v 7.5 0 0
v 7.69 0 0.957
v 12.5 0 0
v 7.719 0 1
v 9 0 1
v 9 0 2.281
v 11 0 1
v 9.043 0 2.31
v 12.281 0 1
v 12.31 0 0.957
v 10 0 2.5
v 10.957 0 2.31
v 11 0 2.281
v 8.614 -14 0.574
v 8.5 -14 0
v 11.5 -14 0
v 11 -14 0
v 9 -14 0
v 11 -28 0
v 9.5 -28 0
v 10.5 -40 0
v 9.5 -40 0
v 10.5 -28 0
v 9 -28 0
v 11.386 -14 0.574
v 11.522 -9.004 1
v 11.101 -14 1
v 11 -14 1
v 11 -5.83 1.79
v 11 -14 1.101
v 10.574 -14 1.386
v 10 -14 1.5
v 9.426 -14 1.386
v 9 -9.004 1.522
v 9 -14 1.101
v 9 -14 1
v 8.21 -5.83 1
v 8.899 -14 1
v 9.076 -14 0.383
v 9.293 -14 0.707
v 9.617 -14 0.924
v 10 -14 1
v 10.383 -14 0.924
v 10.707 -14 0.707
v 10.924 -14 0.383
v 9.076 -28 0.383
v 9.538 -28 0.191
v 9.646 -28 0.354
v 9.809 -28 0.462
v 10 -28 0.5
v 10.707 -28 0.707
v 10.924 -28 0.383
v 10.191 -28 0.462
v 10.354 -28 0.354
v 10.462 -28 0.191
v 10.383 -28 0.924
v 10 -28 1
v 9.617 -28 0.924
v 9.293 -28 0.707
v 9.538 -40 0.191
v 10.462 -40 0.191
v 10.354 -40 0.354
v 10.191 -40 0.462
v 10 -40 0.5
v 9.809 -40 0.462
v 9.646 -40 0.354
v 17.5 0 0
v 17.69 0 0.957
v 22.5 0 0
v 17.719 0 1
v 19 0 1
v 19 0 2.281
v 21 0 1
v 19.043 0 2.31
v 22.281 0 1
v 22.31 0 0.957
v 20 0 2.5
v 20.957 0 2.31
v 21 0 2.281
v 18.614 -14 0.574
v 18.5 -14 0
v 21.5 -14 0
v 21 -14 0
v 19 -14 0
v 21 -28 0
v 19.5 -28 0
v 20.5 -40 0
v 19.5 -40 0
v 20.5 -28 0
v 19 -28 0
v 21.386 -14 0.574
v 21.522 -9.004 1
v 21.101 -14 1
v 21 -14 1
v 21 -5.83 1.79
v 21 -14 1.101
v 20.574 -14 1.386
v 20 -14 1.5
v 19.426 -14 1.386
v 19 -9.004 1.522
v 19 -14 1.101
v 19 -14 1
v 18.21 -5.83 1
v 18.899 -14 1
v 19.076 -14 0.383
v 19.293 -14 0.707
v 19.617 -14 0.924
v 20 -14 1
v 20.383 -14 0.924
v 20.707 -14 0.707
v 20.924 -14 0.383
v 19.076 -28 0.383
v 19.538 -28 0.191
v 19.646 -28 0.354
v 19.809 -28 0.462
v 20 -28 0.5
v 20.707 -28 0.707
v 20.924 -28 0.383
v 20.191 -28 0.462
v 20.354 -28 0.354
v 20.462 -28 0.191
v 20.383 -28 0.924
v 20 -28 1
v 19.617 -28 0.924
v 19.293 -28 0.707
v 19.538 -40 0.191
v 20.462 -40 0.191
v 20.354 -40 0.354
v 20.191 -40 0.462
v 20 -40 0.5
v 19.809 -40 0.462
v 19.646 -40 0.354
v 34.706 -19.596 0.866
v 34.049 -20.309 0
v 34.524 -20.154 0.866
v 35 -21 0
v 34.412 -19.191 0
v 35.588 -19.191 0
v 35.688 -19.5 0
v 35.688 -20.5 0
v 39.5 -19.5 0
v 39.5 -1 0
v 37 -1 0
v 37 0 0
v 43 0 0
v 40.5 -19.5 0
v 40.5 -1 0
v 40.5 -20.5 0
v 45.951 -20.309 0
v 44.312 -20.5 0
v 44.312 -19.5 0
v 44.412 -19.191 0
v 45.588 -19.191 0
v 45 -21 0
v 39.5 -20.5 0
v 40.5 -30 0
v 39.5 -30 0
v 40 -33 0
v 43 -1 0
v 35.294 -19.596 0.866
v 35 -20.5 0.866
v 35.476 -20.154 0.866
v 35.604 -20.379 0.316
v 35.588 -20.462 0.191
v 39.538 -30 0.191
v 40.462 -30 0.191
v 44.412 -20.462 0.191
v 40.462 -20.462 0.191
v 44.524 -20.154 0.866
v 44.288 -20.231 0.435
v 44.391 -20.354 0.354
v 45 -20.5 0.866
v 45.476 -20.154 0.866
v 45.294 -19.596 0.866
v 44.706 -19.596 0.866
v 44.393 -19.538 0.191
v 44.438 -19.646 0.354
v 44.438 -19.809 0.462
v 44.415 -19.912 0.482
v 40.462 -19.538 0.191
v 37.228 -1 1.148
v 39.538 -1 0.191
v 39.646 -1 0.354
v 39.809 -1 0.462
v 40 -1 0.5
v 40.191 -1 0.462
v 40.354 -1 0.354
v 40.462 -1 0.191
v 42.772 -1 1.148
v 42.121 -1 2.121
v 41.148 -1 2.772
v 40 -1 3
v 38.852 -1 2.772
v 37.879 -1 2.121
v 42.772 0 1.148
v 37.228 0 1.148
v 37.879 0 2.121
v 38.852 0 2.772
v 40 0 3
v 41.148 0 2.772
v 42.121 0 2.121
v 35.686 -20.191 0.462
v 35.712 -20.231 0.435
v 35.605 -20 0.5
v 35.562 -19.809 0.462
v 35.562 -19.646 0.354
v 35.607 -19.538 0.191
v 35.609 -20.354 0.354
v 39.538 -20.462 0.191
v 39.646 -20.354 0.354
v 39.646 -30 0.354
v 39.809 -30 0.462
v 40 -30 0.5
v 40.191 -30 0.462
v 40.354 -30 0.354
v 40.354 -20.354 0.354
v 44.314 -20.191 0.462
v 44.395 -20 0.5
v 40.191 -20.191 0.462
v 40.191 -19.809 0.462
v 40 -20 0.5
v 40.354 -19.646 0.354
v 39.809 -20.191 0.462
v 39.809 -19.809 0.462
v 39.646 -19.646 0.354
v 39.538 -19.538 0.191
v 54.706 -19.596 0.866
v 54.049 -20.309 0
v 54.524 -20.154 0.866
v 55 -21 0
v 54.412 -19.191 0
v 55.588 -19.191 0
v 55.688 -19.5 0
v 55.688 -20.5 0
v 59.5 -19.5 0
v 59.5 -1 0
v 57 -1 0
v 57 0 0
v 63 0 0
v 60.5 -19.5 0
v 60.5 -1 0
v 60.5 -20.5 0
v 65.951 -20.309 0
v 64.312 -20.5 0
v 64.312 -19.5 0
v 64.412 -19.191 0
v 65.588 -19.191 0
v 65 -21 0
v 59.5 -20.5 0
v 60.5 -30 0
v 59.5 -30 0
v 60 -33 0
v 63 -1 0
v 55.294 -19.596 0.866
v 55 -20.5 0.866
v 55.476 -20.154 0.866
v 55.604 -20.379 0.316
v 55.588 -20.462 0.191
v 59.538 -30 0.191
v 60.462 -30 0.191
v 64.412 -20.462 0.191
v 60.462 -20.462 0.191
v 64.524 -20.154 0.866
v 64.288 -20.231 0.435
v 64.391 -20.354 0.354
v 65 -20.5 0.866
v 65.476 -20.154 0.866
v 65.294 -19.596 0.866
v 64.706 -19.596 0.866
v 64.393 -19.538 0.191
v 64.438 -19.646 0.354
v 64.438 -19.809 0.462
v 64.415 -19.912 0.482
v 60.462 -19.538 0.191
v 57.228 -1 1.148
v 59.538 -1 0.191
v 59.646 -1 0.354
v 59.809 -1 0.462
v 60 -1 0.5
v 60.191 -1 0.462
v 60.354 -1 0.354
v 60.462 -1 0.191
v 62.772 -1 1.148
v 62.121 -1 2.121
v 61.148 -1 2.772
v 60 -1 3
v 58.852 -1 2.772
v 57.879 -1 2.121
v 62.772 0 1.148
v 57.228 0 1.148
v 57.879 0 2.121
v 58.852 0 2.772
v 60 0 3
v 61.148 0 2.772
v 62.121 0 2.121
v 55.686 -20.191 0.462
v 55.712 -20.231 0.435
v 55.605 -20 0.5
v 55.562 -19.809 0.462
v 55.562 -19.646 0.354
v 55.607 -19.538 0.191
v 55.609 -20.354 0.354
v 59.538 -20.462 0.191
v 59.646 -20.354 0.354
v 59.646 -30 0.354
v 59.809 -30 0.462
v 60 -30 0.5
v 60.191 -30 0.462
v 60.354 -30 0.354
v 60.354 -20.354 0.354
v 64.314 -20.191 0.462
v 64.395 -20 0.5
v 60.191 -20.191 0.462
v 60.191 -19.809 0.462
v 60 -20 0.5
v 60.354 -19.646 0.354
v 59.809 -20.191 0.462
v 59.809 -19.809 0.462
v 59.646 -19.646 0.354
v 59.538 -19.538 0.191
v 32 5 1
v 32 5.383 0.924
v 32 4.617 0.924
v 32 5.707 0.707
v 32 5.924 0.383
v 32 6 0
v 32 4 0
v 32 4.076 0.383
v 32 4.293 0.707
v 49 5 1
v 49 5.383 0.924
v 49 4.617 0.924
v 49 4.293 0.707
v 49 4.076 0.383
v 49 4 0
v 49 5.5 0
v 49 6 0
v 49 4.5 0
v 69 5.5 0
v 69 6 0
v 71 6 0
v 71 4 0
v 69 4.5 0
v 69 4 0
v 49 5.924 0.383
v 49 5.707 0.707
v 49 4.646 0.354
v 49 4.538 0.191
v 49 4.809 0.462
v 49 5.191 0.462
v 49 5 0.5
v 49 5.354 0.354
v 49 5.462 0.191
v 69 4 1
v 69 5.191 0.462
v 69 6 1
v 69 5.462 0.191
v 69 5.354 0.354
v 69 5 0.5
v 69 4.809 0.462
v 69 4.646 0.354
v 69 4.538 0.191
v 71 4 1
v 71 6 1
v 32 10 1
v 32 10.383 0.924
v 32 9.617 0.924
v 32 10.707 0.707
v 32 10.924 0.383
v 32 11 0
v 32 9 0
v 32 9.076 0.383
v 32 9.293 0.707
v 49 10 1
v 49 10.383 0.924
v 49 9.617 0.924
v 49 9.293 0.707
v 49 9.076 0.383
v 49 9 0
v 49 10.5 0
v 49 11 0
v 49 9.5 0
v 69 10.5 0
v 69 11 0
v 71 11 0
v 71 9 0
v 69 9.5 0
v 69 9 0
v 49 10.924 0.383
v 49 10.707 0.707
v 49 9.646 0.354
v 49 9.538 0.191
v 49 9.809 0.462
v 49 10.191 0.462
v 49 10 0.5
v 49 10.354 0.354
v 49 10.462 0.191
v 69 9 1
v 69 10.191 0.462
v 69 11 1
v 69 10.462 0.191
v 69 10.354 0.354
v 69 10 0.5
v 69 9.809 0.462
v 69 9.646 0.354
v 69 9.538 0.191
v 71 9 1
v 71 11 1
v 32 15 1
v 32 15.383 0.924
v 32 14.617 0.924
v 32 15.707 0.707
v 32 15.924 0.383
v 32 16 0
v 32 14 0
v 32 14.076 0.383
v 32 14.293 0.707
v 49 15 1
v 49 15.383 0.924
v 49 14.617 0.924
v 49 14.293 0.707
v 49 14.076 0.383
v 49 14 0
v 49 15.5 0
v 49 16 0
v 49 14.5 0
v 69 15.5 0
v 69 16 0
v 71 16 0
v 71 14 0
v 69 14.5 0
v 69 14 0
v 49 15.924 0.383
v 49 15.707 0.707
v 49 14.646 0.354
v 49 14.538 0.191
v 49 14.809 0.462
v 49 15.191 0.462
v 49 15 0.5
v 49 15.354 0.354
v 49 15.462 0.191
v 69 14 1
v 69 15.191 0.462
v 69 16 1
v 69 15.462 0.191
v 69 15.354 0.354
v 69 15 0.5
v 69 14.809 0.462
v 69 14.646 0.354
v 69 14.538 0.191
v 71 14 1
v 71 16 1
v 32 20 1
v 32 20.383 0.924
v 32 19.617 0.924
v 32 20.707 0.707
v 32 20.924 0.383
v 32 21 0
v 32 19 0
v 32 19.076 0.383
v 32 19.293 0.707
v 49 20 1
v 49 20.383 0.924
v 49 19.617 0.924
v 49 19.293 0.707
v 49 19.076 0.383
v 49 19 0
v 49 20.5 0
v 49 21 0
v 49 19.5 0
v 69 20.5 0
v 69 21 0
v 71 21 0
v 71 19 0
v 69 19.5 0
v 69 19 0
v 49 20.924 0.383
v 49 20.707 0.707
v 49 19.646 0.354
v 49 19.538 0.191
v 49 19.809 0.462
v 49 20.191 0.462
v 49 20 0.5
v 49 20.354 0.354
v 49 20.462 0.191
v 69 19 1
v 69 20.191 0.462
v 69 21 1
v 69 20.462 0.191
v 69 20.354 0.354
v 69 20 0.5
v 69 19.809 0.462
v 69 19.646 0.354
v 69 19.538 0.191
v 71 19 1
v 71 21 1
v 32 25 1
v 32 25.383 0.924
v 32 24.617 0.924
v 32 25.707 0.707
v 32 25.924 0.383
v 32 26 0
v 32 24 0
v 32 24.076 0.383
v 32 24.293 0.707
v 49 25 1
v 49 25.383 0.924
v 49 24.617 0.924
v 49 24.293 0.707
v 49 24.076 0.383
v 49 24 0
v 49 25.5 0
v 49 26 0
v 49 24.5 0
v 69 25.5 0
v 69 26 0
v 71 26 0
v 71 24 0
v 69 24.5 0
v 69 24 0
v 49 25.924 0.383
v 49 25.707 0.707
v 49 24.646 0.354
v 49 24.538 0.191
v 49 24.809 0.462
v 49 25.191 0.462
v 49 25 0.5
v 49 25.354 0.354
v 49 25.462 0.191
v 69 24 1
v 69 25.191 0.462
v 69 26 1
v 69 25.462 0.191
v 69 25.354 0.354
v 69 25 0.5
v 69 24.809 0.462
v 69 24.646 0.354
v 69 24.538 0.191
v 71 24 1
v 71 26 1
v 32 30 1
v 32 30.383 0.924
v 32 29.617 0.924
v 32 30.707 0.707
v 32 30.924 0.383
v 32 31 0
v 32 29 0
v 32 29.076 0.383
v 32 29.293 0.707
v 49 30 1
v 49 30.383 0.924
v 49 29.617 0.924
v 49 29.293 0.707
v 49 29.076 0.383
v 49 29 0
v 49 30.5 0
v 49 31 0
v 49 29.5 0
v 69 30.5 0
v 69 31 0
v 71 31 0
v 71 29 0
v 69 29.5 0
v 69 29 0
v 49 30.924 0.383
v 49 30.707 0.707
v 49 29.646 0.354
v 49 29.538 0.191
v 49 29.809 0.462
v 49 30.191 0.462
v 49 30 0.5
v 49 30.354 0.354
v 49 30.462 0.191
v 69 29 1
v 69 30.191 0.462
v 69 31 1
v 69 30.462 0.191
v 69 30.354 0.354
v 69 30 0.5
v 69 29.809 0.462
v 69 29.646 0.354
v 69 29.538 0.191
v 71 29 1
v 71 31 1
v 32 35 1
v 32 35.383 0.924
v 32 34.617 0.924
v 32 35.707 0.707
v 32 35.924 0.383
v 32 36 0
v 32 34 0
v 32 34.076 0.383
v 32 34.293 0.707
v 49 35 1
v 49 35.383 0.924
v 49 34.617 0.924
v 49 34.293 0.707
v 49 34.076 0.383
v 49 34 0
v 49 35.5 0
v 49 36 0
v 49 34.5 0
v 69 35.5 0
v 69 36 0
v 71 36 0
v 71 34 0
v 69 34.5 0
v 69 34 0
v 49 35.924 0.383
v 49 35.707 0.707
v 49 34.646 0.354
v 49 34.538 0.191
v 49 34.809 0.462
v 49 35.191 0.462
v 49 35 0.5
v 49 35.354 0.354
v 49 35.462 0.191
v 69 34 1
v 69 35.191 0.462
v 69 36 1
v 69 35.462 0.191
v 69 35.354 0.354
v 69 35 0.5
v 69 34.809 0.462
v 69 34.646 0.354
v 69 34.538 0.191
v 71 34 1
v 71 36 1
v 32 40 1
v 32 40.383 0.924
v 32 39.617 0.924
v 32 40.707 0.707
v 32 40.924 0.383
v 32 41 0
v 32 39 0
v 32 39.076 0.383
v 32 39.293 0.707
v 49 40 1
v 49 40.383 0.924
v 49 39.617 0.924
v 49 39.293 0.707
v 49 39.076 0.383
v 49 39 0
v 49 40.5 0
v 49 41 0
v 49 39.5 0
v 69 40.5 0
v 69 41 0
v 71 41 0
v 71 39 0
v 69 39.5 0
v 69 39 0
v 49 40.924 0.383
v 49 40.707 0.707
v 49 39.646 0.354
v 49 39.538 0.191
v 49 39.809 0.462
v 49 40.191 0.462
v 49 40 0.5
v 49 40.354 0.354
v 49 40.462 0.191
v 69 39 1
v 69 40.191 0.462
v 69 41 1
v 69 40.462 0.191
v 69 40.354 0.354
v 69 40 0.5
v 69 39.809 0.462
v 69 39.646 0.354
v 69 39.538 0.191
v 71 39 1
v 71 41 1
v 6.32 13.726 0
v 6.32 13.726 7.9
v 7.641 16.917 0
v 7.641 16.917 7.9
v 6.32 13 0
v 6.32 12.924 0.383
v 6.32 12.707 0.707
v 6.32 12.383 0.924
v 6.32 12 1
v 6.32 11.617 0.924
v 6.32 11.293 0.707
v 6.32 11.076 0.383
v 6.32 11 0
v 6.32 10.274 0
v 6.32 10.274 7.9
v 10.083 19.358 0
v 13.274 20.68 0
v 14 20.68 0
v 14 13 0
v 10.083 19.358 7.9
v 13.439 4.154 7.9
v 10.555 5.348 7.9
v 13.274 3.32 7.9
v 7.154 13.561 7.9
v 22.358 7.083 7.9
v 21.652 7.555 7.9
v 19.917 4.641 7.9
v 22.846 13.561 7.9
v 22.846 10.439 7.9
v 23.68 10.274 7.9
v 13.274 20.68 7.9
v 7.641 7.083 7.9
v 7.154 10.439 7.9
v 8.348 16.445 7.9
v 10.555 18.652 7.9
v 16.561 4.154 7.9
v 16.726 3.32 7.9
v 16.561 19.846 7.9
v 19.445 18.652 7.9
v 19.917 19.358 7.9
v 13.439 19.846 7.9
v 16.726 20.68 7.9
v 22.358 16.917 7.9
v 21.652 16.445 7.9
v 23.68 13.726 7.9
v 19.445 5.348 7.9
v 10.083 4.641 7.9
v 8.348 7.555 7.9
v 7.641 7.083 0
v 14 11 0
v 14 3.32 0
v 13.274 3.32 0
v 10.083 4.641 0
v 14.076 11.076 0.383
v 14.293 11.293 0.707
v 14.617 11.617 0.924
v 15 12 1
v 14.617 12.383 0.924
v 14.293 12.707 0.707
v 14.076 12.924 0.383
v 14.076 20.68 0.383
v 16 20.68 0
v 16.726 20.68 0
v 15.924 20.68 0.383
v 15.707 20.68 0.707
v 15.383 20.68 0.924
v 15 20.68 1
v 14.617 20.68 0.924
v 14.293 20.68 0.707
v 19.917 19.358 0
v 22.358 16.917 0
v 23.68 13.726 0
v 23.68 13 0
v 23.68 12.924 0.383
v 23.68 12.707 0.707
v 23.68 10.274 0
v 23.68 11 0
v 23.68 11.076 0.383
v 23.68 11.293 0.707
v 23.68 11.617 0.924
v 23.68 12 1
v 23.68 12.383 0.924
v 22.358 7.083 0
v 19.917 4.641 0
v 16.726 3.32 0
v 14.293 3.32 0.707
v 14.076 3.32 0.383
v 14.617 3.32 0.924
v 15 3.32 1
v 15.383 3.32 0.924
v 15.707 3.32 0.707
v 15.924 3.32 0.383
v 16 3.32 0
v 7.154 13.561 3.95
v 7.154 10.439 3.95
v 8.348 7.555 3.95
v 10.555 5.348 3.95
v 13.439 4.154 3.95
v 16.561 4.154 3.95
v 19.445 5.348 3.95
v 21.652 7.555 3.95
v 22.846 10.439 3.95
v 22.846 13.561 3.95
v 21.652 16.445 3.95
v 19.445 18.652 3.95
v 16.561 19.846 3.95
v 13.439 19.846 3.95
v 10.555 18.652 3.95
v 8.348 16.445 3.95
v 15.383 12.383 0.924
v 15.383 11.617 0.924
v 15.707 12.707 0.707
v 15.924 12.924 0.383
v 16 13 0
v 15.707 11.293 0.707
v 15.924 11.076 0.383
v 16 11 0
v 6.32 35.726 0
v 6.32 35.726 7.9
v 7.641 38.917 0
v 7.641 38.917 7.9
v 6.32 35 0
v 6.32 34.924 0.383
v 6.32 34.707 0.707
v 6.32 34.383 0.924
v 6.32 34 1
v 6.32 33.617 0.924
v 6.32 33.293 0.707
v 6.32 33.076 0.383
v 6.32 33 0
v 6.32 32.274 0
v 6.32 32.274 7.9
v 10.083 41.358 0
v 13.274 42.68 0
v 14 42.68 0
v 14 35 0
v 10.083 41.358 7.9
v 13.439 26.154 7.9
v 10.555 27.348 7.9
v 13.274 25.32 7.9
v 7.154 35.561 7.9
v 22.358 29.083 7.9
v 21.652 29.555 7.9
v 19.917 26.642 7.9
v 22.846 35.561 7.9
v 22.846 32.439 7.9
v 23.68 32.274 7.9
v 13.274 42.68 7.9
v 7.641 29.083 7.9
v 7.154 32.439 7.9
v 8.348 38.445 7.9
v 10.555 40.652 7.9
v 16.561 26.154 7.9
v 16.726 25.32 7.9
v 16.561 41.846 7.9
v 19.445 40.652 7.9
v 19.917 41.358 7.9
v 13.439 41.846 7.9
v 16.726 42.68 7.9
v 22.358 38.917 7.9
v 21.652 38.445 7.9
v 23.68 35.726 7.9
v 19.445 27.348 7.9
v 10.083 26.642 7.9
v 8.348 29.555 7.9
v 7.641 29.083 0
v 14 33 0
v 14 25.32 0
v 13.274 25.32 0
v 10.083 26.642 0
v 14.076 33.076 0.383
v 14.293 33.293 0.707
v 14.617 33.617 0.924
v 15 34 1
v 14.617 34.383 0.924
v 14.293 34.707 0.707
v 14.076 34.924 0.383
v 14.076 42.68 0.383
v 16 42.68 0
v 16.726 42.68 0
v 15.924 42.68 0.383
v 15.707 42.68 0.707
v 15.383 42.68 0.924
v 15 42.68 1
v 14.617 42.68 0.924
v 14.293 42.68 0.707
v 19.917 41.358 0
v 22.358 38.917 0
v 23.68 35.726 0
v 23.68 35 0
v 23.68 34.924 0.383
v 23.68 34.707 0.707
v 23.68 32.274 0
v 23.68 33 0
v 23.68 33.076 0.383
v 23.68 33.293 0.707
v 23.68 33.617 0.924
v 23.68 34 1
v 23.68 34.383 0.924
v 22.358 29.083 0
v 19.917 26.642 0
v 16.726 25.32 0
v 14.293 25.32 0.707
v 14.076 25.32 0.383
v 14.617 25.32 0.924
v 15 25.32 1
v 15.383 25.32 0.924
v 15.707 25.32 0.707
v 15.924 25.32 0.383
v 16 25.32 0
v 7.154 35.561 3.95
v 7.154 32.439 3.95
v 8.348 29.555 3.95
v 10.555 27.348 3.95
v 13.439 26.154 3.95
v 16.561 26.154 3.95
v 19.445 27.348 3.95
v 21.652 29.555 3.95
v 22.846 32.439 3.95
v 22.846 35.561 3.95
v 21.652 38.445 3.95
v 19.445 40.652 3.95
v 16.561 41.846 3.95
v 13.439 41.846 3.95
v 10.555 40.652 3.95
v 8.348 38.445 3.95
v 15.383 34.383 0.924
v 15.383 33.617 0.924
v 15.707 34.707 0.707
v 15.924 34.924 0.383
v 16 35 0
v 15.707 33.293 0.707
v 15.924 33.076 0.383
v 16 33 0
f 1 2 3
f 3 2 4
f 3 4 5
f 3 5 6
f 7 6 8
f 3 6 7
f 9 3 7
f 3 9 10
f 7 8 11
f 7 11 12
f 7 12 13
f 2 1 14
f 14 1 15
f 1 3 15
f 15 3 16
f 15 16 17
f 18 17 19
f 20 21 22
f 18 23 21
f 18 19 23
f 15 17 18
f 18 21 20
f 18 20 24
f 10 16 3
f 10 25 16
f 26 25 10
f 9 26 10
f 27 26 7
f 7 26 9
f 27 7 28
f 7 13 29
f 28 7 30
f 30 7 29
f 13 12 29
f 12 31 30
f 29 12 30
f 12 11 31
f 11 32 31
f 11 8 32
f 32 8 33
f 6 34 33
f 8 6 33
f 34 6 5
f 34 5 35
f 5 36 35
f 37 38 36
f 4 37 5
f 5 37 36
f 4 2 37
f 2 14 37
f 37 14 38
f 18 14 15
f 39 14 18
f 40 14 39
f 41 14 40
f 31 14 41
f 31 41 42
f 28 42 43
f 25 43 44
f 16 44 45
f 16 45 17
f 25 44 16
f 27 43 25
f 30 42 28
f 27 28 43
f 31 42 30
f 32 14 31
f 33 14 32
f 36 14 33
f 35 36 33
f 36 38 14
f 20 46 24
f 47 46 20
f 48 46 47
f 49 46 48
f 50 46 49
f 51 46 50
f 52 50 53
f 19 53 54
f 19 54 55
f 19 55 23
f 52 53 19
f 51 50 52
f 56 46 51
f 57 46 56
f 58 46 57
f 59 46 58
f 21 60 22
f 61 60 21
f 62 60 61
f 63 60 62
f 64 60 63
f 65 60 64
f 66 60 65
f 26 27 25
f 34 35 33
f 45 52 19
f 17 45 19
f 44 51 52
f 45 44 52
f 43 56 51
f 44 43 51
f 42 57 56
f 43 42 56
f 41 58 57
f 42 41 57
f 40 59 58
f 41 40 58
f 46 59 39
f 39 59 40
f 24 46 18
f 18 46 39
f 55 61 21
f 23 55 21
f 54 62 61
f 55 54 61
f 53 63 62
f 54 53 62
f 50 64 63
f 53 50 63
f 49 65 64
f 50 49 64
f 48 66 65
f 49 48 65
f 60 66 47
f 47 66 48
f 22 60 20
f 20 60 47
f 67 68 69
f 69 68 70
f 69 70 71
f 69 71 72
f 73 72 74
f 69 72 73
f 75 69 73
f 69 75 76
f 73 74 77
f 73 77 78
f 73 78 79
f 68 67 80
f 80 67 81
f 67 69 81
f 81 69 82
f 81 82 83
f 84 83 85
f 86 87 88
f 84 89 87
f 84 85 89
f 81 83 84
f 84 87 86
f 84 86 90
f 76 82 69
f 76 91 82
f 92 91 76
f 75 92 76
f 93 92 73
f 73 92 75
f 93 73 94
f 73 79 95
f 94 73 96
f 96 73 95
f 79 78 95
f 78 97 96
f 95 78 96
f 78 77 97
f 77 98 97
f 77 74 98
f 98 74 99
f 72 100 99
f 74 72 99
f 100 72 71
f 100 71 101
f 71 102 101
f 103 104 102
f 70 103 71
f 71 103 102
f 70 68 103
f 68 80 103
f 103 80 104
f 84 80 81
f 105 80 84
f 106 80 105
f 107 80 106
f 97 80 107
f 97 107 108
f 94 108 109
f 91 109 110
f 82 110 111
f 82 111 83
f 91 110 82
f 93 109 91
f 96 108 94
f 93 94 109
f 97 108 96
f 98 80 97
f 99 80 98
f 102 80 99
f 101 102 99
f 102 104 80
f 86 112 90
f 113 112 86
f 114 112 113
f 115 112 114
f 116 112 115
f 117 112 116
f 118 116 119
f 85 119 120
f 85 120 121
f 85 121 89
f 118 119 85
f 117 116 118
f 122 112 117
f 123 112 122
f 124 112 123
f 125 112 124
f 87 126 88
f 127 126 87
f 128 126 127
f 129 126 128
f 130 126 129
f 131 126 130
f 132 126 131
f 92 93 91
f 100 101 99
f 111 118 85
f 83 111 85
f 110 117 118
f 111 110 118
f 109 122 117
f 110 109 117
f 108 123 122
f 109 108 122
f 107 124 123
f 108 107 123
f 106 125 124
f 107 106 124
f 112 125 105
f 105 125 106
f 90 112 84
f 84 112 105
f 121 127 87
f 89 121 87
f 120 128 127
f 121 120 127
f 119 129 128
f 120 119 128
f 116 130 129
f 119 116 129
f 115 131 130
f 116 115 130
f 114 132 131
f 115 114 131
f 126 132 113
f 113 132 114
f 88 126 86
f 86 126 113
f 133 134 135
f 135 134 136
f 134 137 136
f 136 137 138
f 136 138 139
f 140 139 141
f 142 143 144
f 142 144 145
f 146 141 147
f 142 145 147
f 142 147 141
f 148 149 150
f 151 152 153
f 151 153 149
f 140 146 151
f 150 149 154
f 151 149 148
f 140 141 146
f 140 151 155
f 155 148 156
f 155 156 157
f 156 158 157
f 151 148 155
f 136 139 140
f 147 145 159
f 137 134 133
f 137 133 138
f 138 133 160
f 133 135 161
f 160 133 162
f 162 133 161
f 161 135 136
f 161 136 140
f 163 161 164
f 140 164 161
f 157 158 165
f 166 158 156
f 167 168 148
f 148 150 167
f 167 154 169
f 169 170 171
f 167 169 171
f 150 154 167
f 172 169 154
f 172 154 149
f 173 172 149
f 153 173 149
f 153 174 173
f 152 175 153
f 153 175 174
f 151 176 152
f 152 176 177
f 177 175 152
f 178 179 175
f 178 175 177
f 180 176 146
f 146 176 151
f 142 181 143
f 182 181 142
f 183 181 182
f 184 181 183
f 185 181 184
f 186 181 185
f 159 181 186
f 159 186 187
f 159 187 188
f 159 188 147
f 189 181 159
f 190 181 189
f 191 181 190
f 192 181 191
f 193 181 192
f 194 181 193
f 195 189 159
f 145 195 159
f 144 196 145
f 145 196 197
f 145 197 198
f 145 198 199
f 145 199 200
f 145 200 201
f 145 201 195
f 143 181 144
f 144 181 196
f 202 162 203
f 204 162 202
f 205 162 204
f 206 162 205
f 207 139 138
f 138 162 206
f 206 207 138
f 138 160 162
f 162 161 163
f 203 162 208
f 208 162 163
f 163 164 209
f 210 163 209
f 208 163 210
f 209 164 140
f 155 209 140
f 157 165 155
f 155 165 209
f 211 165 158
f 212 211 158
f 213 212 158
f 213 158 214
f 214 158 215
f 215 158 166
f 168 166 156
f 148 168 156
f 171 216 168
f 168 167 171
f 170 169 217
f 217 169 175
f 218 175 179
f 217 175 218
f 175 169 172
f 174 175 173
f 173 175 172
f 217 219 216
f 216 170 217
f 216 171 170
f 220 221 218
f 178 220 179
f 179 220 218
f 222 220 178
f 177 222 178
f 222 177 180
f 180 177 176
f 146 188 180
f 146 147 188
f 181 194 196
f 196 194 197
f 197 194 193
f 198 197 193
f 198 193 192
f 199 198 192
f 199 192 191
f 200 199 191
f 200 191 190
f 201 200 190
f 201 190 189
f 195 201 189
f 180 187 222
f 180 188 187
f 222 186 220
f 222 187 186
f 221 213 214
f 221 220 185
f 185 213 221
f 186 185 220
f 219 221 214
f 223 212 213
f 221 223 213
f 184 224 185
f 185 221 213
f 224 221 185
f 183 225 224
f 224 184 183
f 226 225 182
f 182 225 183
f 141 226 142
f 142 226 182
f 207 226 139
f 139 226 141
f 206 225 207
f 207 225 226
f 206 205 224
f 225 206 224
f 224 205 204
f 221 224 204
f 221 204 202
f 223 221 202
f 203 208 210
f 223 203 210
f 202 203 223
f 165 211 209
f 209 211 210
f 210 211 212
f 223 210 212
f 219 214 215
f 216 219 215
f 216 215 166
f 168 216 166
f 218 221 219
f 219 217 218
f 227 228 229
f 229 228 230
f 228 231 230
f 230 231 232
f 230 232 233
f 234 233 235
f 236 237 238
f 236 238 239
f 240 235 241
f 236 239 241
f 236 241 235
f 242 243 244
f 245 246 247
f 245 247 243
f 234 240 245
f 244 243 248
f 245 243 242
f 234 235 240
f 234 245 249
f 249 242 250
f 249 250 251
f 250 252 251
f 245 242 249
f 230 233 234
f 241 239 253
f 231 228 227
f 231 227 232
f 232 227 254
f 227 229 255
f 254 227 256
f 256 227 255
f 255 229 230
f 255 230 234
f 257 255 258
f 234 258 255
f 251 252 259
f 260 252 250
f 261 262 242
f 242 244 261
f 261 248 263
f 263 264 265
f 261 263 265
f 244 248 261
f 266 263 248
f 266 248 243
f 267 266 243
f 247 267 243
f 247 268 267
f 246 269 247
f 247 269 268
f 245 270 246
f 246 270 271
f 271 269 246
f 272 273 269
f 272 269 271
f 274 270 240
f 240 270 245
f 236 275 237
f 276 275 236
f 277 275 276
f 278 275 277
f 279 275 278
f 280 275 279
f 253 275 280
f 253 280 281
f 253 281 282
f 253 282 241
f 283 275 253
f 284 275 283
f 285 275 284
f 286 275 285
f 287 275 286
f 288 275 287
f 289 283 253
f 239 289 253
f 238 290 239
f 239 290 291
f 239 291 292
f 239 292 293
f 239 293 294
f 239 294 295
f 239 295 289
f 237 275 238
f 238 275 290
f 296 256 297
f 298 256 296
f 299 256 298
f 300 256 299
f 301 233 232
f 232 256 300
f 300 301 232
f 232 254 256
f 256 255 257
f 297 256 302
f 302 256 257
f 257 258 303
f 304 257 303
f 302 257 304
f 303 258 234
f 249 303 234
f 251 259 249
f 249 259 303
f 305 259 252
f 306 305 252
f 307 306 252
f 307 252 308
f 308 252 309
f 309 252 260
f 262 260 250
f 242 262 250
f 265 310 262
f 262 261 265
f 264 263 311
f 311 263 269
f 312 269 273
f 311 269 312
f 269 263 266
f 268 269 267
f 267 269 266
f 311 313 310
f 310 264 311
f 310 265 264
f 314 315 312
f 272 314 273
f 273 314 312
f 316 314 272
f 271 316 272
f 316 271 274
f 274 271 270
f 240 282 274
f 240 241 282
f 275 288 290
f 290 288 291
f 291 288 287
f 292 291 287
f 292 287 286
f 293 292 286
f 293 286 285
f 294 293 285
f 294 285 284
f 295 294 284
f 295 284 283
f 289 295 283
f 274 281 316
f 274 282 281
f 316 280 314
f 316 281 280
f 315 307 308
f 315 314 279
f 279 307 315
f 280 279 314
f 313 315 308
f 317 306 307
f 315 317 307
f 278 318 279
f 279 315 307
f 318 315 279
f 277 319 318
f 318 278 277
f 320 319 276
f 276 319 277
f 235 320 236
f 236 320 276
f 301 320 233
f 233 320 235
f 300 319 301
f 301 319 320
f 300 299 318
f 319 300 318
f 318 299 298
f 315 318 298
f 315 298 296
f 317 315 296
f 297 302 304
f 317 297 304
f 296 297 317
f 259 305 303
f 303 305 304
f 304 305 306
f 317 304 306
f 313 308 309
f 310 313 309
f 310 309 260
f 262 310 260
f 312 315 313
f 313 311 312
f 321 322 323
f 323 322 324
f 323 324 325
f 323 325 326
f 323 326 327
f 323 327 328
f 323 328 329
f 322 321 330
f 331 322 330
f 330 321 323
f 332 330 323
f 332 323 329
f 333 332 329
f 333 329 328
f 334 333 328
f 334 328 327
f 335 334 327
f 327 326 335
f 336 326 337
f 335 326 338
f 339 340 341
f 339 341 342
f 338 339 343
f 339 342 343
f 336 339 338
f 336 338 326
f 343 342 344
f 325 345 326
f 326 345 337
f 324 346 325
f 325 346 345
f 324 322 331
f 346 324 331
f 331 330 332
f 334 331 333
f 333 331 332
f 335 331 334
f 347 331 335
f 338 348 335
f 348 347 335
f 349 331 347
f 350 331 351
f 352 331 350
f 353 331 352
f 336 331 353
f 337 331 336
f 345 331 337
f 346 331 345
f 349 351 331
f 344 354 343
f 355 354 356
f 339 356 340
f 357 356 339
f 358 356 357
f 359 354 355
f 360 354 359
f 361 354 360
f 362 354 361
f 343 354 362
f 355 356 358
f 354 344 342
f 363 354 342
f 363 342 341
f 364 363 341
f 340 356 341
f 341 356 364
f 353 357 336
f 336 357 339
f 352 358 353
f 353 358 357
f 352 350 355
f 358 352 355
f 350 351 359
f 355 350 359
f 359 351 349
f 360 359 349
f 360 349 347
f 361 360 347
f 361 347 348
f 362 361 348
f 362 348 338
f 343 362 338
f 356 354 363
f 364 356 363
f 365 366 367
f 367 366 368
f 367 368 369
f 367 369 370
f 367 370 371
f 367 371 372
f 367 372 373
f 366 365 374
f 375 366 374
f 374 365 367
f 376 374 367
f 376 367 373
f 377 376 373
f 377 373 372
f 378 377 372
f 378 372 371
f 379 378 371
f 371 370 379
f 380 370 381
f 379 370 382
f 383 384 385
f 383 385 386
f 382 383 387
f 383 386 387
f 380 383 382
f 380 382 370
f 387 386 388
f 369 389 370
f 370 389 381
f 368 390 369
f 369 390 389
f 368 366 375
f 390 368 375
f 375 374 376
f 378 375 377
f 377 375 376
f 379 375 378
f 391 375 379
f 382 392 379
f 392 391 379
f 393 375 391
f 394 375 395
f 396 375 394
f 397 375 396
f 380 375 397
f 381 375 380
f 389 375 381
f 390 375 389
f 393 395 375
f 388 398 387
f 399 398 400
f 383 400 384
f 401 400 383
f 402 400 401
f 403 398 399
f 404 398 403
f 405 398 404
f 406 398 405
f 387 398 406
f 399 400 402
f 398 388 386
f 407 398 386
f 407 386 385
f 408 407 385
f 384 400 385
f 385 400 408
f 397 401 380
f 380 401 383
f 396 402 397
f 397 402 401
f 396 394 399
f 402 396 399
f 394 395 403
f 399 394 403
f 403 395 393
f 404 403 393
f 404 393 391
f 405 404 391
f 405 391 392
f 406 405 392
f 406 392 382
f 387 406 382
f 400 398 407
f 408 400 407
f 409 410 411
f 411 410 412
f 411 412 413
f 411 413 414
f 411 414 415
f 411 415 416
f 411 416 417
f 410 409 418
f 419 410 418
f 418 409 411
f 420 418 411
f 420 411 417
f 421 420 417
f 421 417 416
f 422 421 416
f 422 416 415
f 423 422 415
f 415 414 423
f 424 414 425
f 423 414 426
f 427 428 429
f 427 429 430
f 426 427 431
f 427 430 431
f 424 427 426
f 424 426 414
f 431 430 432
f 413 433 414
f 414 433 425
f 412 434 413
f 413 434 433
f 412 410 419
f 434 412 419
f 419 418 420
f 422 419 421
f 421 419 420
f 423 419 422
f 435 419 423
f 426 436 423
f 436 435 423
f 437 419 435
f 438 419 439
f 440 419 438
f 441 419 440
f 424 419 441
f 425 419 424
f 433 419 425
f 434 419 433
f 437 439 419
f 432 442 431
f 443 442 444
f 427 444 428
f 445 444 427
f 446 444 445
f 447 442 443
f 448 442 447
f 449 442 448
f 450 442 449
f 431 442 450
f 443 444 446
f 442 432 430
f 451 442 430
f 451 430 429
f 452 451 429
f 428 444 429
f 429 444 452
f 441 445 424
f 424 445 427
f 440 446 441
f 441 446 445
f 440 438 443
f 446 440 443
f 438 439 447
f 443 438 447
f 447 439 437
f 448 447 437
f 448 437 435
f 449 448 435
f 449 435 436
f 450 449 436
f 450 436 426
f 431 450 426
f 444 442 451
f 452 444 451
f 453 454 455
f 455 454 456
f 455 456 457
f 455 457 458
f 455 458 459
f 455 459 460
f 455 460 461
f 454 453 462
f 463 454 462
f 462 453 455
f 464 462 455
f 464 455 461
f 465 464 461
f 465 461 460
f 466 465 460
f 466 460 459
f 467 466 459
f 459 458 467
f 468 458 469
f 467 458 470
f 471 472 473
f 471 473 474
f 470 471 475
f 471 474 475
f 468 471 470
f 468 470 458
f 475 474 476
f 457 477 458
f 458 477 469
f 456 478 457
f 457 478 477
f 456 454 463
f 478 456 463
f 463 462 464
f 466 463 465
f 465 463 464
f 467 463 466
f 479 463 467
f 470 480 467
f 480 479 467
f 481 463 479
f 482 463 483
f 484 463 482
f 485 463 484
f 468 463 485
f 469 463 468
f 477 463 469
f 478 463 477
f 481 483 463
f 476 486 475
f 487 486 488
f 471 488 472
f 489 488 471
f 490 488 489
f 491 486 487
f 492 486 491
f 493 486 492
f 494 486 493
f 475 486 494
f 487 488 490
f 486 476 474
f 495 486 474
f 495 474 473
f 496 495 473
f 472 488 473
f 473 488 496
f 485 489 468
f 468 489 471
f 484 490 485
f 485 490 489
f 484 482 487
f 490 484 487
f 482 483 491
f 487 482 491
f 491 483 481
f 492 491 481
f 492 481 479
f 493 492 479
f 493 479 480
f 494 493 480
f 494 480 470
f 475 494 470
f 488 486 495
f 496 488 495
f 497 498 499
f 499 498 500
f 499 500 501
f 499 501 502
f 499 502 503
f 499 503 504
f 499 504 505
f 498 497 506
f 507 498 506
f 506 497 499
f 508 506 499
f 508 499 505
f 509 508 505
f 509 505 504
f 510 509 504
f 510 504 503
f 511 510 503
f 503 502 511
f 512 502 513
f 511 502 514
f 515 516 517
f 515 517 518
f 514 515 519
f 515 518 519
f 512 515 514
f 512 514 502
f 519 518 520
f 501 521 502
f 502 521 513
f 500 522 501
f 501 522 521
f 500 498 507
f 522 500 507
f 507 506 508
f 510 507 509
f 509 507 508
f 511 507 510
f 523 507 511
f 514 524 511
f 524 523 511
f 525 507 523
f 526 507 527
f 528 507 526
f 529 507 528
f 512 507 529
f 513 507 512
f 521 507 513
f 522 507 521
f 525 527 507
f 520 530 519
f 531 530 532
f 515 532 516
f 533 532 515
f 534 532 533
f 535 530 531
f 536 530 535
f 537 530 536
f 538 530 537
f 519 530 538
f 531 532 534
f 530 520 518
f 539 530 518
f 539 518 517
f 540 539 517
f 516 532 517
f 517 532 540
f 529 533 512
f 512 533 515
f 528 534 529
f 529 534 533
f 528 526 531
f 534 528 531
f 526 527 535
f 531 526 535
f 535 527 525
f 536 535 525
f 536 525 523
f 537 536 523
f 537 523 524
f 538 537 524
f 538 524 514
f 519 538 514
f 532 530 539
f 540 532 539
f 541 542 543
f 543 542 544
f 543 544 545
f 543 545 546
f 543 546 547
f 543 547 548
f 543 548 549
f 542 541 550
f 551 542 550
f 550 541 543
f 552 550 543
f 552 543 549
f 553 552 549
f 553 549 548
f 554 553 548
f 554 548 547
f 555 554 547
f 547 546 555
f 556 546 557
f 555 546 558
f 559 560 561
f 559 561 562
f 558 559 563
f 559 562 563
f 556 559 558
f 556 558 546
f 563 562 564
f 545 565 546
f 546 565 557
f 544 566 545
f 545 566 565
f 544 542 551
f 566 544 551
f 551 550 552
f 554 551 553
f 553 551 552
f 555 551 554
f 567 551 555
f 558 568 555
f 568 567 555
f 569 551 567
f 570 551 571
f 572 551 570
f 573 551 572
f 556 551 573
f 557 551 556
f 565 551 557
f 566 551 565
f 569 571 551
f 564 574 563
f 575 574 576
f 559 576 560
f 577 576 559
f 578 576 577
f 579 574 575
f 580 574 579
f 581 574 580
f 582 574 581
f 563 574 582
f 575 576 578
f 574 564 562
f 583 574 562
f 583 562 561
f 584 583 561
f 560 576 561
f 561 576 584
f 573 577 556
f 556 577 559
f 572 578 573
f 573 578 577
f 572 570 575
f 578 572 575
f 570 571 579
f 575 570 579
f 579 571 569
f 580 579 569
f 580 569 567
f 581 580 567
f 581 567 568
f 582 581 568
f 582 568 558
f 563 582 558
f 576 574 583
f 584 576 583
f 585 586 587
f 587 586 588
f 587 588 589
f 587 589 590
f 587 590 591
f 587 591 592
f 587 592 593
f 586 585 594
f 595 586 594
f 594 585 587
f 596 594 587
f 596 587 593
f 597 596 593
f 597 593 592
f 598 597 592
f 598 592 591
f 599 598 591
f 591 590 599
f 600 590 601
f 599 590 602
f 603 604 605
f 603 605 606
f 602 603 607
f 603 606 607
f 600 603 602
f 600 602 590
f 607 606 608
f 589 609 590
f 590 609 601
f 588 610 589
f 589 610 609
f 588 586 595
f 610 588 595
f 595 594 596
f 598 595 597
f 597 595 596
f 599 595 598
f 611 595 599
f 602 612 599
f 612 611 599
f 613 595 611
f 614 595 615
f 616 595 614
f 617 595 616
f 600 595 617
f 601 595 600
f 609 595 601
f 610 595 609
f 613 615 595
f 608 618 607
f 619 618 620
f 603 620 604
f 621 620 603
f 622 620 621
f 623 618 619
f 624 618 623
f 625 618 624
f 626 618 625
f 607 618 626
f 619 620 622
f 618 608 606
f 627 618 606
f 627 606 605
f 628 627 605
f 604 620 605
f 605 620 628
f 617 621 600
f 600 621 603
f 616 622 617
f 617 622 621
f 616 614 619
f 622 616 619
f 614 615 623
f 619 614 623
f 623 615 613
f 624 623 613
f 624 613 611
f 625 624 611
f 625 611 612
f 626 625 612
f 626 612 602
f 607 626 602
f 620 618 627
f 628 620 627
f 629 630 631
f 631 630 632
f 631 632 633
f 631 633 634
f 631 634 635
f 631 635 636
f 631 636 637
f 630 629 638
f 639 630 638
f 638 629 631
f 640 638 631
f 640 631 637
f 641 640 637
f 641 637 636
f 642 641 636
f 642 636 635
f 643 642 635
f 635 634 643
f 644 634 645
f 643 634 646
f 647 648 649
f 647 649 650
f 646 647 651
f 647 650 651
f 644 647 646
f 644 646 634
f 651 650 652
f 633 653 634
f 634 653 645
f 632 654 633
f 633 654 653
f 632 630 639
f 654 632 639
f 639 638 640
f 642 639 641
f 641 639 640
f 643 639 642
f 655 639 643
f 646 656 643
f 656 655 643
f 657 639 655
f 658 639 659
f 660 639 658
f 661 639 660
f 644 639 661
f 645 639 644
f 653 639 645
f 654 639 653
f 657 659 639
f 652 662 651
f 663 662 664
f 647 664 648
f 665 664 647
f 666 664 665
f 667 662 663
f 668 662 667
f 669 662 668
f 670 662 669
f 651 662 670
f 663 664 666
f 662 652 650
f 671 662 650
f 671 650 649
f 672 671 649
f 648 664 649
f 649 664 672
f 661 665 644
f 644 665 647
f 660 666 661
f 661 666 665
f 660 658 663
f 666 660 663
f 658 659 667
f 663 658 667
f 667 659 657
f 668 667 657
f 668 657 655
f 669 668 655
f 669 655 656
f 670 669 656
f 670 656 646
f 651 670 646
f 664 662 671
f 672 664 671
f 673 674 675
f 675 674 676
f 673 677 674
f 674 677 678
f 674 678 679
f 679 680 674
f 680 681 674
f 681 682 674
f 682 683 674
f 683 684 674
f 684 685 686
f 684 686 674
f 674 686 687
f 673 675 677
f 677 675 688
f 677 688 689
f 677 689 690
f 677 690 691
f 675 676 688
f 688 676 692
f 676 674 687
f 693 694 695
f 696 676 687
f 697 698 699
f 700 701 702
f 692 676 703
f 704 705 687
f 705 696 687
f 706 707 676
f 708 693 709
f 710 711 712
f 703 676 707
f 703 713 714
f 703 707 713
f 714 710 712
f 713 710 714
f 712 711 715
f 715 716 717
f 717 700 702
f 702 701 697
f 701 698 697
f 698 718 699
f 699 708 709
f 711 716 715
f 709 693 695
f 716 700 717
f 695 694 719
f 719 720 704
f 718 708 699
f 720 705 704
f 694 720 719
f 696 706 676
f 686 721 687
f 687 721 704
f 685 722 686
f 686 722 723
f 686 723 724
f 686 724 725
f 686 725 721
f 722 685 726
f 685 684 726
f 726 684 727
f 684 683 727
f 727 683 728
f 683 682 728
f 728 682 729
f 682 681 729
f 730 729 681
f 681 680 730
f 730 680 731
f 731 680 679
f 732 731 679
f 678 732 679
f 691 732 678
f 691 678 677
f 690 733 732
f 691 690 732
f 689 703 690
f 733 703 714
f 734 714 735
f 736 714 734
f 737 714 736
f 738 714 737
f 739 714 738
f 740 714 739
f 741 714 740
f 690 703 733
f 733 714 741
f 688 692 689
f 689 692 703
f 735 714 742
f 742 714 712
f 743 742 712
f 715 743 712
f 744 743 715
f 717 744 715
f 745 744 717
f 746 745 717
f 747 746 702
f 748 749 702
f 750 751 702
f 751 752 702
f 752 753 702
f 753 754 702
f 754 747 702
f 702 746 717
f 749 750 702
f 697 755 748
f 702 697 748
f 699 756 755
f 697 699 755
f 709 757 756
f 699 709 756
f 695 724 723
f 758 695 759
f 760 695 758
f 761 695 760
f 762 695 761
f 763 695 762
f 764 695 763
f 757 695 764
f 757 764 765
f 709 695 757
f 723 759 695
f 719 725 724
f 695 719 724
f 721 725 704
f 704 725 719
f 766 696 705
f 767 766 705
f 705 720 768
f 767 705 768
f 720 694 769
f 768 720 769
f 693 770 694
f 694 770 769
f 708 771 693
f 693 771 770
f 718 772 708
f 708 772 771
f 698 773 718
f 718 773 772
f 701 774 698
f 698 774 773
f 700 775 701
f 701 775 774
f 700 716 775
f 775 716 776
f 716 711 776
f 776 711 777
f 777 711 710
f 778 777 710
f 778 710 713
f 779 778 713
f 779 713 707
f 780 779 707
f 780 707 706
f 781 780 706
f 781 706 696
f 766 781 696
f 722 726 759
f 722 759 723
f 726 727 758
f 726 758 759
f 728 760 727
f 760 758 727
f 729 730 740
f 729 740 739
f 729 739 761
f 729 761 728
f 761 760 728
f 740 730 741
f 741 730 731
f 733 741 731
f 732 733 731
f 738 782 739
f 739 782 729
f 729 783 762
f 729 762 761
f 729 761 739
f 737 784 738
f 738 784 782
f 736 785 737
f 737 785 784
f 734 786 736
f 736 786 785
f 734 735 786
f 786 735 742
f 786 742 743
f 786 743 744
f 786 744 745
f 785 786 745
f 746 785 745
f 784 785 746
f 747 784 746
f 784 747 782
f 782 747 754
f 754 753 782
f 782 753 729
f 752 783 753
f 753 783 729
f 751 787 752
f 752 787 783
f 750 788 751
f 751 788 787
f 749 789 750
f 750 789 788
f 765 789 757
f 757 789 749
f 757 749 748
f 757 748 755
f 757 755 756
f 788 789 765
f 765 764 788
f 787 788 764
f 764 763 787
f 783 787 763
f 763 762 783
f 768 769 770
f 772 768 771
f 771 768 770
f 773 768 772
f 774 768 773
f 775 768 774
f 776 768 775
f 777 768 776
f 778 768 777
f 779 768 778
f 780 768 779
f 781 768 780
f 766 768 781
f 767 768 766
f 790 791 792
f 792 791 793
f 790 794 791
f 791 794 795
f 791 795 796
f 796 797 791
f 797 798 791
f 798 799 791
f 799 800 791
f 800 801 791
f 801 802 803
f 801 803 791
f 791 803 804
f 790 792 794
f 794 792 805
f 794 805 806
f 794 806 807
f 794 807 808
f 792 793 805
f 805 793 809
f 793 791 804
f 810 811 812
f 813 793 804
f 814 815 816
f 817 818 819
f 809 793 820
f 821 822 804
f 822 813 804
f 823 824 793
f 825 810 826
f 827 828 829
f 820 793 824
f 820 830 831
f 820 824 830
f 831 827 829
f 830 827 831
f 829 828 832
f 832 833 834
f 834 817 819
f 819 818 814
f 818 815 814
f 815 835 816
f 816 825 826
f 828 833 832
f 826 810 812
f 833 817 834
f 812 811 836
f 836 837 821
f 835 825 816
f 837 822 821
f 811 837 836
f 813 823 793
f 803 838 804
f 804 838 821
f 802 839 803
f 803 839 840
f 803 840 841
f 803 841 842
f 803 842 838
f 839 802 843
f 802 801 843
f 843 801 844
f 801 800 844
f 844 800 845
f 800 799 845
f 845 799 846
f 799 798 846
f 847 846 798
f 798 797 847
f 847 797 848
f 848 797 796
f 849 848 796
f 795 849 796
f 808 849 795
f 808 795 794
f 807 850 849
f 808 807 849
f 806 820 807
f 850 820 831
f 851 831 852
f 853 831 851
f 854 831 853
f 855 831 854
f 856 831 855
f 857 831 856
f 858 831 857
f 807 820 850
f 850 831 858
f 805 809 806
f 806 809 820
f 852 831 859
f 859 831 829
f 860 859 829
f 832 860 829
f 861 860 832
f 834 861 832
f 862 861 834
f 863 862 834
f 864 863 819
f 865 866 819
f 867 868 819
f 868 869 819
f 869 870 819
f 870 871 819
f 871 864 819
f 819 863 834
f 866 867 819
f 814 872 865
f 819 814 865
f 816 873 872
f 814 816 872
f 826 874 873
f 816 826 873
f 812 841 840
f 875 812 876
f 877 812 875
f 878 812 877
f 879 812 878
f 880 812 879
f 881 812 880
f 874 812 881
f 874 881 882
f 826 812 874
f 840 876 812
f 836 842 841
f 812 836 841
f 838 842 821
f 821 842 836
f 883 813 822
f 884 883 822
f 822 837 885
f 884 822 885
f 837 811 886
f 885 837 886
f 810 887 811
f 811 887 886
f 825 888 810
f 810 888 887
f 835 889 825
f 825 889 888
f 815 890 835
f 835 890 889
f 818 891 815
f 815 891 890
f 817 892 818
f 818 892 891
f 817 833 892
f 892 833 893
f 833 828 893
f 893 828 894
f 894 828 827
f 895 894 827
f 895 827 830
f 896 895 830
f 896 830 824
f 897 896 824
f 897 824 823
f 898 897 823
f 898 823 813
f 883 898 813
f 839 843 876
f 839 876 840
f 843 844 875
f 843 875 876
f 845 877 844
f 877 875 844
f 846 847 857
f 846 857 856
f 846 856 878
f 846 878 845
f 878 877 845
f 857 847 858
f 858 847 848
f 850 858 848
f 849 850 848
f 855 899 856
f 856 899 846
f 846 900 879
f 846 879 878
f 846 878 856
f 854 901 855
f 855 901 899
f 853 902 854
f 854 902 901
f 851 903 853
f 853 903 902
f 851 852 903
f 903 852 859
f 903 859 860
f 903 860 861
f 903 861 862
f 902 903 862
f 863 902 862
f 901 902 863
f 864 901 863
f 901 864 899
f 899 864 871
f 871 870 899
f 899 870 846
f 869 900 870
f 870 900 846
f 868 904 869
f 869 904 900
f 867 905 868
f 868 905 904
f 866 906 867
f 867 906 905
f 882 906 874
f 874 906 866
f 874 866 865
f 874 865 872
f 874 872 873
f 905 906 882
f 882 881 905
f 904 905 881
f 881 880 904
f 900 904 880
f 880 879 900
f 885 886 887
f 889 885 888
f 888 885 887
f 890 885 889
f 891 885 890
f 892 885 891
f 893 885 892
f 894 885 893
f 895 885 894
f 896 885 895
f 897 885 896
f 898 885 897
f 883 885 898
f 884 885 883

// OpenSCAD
difference(){

union(){

for (i = [0,1]){
translate([10+10*i,0,0])
rotate([90,0,0])
union(){
	cylinder(r=1,h=28,$fn=16);
	cylinder(r=0.5,h=40,$fn=16);
	difference(){
		cylinder(r1=2.5,r2=1.5,h=14,$fn=16);
		for(i=[0:3]){
		rotate([0,0,90*i])
		translate([1,1,-1])
		cube(16);
		}
	}
}
}

for (i = [0,1]){
translate([40+20*i,0,0])
rotate([0,0,270])
union(){
	rotate([0,90,0])
	cylinder(r=3,h=1,$fn=16);
	rotate([0,90,0])
	cylinder(r=0.5,h=30,$fn=16);
	translate([20,0,0])
	rotate([90,0,0])
	cylinder(r=0.5,h=10,$fn=16,center=true);
	translate([20,5,0])
	sphere(r=1);
	translate([20,-5,0])
	sphere(r=1);
	translate([30,0,0])
	rotate([0,90,0])
	cylinder(r1=0.5,r2=0,h=3,$fn=16);
}
}

for (i = [1:8]){
translate([40,5*i,0])
union(){
translate([-8,0,0])
rotate([0,90,0])
cylinder(r=1,h=17,$fn=16);
rotate([0,90,0])
cylinder(r=0.5,h=30,$fn=16);
translate([30,0,0])
cube(2,center=true);
}
}

for (i = [0,1]){
translate([15,(22*i)+12,0])
union(){
	difference(){
	rotate([0,0,360/32])
	difference(){
		cylinder(r=17.7/2,h=15.8/2,$fn=16);
		translate([0,0,15.8/4])
		color([1,0,0])
		cylinder(r=16/2,h=15.8,$fn=16);
	}
	rotate([90,0,0])
	cylinder(r=1,h=40,center=true,$fn=16);
	rotate([90,0,90])
	cylinder(r=1,h=40,center=true,$fn=16);
	}
}
}

}
translate([0,-50,-10])
cube([80,100,10]);

}
